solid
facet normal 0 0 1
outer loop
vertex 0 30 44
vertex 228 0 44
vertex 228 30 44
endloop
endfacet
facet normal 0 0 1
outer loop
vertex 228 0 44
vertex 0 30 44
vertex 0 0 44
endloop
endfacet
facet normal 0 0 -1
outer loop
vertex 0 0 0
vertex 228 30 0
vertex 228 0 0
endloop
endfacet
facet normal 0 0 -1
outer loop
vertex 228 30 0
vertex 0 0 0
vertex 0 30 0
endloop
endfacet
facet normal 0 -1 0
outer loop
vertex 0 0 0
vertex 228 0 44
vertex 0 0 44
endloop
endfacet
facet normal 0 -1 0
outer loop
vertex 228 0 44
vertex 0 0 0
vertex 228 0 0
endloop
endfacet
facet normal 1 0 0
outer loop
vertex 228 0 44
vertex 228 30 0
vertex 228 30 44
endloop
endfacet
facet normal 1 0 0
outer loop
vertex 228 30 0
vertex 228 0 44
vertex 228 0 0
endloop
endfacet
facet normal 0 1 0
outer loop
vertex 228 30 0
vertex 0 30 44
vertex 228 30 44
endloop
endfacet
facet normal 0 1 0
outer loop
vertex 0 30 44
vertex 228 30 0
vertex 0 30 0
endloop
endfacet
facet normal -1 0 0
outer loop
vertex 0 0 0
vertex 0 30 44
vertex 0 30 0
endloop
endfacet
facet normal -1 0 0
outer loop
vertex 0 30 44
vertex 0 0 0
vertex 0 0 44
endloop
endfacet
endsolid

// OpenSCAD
module filler(back_length, depth, back_width, filter_height, filter_depth) {
  cube([back_length - 2 * depth, back_width - 2 * depth - filter_height, filter_depth]);
}

filler(238, 5, 156, 116, 44);
